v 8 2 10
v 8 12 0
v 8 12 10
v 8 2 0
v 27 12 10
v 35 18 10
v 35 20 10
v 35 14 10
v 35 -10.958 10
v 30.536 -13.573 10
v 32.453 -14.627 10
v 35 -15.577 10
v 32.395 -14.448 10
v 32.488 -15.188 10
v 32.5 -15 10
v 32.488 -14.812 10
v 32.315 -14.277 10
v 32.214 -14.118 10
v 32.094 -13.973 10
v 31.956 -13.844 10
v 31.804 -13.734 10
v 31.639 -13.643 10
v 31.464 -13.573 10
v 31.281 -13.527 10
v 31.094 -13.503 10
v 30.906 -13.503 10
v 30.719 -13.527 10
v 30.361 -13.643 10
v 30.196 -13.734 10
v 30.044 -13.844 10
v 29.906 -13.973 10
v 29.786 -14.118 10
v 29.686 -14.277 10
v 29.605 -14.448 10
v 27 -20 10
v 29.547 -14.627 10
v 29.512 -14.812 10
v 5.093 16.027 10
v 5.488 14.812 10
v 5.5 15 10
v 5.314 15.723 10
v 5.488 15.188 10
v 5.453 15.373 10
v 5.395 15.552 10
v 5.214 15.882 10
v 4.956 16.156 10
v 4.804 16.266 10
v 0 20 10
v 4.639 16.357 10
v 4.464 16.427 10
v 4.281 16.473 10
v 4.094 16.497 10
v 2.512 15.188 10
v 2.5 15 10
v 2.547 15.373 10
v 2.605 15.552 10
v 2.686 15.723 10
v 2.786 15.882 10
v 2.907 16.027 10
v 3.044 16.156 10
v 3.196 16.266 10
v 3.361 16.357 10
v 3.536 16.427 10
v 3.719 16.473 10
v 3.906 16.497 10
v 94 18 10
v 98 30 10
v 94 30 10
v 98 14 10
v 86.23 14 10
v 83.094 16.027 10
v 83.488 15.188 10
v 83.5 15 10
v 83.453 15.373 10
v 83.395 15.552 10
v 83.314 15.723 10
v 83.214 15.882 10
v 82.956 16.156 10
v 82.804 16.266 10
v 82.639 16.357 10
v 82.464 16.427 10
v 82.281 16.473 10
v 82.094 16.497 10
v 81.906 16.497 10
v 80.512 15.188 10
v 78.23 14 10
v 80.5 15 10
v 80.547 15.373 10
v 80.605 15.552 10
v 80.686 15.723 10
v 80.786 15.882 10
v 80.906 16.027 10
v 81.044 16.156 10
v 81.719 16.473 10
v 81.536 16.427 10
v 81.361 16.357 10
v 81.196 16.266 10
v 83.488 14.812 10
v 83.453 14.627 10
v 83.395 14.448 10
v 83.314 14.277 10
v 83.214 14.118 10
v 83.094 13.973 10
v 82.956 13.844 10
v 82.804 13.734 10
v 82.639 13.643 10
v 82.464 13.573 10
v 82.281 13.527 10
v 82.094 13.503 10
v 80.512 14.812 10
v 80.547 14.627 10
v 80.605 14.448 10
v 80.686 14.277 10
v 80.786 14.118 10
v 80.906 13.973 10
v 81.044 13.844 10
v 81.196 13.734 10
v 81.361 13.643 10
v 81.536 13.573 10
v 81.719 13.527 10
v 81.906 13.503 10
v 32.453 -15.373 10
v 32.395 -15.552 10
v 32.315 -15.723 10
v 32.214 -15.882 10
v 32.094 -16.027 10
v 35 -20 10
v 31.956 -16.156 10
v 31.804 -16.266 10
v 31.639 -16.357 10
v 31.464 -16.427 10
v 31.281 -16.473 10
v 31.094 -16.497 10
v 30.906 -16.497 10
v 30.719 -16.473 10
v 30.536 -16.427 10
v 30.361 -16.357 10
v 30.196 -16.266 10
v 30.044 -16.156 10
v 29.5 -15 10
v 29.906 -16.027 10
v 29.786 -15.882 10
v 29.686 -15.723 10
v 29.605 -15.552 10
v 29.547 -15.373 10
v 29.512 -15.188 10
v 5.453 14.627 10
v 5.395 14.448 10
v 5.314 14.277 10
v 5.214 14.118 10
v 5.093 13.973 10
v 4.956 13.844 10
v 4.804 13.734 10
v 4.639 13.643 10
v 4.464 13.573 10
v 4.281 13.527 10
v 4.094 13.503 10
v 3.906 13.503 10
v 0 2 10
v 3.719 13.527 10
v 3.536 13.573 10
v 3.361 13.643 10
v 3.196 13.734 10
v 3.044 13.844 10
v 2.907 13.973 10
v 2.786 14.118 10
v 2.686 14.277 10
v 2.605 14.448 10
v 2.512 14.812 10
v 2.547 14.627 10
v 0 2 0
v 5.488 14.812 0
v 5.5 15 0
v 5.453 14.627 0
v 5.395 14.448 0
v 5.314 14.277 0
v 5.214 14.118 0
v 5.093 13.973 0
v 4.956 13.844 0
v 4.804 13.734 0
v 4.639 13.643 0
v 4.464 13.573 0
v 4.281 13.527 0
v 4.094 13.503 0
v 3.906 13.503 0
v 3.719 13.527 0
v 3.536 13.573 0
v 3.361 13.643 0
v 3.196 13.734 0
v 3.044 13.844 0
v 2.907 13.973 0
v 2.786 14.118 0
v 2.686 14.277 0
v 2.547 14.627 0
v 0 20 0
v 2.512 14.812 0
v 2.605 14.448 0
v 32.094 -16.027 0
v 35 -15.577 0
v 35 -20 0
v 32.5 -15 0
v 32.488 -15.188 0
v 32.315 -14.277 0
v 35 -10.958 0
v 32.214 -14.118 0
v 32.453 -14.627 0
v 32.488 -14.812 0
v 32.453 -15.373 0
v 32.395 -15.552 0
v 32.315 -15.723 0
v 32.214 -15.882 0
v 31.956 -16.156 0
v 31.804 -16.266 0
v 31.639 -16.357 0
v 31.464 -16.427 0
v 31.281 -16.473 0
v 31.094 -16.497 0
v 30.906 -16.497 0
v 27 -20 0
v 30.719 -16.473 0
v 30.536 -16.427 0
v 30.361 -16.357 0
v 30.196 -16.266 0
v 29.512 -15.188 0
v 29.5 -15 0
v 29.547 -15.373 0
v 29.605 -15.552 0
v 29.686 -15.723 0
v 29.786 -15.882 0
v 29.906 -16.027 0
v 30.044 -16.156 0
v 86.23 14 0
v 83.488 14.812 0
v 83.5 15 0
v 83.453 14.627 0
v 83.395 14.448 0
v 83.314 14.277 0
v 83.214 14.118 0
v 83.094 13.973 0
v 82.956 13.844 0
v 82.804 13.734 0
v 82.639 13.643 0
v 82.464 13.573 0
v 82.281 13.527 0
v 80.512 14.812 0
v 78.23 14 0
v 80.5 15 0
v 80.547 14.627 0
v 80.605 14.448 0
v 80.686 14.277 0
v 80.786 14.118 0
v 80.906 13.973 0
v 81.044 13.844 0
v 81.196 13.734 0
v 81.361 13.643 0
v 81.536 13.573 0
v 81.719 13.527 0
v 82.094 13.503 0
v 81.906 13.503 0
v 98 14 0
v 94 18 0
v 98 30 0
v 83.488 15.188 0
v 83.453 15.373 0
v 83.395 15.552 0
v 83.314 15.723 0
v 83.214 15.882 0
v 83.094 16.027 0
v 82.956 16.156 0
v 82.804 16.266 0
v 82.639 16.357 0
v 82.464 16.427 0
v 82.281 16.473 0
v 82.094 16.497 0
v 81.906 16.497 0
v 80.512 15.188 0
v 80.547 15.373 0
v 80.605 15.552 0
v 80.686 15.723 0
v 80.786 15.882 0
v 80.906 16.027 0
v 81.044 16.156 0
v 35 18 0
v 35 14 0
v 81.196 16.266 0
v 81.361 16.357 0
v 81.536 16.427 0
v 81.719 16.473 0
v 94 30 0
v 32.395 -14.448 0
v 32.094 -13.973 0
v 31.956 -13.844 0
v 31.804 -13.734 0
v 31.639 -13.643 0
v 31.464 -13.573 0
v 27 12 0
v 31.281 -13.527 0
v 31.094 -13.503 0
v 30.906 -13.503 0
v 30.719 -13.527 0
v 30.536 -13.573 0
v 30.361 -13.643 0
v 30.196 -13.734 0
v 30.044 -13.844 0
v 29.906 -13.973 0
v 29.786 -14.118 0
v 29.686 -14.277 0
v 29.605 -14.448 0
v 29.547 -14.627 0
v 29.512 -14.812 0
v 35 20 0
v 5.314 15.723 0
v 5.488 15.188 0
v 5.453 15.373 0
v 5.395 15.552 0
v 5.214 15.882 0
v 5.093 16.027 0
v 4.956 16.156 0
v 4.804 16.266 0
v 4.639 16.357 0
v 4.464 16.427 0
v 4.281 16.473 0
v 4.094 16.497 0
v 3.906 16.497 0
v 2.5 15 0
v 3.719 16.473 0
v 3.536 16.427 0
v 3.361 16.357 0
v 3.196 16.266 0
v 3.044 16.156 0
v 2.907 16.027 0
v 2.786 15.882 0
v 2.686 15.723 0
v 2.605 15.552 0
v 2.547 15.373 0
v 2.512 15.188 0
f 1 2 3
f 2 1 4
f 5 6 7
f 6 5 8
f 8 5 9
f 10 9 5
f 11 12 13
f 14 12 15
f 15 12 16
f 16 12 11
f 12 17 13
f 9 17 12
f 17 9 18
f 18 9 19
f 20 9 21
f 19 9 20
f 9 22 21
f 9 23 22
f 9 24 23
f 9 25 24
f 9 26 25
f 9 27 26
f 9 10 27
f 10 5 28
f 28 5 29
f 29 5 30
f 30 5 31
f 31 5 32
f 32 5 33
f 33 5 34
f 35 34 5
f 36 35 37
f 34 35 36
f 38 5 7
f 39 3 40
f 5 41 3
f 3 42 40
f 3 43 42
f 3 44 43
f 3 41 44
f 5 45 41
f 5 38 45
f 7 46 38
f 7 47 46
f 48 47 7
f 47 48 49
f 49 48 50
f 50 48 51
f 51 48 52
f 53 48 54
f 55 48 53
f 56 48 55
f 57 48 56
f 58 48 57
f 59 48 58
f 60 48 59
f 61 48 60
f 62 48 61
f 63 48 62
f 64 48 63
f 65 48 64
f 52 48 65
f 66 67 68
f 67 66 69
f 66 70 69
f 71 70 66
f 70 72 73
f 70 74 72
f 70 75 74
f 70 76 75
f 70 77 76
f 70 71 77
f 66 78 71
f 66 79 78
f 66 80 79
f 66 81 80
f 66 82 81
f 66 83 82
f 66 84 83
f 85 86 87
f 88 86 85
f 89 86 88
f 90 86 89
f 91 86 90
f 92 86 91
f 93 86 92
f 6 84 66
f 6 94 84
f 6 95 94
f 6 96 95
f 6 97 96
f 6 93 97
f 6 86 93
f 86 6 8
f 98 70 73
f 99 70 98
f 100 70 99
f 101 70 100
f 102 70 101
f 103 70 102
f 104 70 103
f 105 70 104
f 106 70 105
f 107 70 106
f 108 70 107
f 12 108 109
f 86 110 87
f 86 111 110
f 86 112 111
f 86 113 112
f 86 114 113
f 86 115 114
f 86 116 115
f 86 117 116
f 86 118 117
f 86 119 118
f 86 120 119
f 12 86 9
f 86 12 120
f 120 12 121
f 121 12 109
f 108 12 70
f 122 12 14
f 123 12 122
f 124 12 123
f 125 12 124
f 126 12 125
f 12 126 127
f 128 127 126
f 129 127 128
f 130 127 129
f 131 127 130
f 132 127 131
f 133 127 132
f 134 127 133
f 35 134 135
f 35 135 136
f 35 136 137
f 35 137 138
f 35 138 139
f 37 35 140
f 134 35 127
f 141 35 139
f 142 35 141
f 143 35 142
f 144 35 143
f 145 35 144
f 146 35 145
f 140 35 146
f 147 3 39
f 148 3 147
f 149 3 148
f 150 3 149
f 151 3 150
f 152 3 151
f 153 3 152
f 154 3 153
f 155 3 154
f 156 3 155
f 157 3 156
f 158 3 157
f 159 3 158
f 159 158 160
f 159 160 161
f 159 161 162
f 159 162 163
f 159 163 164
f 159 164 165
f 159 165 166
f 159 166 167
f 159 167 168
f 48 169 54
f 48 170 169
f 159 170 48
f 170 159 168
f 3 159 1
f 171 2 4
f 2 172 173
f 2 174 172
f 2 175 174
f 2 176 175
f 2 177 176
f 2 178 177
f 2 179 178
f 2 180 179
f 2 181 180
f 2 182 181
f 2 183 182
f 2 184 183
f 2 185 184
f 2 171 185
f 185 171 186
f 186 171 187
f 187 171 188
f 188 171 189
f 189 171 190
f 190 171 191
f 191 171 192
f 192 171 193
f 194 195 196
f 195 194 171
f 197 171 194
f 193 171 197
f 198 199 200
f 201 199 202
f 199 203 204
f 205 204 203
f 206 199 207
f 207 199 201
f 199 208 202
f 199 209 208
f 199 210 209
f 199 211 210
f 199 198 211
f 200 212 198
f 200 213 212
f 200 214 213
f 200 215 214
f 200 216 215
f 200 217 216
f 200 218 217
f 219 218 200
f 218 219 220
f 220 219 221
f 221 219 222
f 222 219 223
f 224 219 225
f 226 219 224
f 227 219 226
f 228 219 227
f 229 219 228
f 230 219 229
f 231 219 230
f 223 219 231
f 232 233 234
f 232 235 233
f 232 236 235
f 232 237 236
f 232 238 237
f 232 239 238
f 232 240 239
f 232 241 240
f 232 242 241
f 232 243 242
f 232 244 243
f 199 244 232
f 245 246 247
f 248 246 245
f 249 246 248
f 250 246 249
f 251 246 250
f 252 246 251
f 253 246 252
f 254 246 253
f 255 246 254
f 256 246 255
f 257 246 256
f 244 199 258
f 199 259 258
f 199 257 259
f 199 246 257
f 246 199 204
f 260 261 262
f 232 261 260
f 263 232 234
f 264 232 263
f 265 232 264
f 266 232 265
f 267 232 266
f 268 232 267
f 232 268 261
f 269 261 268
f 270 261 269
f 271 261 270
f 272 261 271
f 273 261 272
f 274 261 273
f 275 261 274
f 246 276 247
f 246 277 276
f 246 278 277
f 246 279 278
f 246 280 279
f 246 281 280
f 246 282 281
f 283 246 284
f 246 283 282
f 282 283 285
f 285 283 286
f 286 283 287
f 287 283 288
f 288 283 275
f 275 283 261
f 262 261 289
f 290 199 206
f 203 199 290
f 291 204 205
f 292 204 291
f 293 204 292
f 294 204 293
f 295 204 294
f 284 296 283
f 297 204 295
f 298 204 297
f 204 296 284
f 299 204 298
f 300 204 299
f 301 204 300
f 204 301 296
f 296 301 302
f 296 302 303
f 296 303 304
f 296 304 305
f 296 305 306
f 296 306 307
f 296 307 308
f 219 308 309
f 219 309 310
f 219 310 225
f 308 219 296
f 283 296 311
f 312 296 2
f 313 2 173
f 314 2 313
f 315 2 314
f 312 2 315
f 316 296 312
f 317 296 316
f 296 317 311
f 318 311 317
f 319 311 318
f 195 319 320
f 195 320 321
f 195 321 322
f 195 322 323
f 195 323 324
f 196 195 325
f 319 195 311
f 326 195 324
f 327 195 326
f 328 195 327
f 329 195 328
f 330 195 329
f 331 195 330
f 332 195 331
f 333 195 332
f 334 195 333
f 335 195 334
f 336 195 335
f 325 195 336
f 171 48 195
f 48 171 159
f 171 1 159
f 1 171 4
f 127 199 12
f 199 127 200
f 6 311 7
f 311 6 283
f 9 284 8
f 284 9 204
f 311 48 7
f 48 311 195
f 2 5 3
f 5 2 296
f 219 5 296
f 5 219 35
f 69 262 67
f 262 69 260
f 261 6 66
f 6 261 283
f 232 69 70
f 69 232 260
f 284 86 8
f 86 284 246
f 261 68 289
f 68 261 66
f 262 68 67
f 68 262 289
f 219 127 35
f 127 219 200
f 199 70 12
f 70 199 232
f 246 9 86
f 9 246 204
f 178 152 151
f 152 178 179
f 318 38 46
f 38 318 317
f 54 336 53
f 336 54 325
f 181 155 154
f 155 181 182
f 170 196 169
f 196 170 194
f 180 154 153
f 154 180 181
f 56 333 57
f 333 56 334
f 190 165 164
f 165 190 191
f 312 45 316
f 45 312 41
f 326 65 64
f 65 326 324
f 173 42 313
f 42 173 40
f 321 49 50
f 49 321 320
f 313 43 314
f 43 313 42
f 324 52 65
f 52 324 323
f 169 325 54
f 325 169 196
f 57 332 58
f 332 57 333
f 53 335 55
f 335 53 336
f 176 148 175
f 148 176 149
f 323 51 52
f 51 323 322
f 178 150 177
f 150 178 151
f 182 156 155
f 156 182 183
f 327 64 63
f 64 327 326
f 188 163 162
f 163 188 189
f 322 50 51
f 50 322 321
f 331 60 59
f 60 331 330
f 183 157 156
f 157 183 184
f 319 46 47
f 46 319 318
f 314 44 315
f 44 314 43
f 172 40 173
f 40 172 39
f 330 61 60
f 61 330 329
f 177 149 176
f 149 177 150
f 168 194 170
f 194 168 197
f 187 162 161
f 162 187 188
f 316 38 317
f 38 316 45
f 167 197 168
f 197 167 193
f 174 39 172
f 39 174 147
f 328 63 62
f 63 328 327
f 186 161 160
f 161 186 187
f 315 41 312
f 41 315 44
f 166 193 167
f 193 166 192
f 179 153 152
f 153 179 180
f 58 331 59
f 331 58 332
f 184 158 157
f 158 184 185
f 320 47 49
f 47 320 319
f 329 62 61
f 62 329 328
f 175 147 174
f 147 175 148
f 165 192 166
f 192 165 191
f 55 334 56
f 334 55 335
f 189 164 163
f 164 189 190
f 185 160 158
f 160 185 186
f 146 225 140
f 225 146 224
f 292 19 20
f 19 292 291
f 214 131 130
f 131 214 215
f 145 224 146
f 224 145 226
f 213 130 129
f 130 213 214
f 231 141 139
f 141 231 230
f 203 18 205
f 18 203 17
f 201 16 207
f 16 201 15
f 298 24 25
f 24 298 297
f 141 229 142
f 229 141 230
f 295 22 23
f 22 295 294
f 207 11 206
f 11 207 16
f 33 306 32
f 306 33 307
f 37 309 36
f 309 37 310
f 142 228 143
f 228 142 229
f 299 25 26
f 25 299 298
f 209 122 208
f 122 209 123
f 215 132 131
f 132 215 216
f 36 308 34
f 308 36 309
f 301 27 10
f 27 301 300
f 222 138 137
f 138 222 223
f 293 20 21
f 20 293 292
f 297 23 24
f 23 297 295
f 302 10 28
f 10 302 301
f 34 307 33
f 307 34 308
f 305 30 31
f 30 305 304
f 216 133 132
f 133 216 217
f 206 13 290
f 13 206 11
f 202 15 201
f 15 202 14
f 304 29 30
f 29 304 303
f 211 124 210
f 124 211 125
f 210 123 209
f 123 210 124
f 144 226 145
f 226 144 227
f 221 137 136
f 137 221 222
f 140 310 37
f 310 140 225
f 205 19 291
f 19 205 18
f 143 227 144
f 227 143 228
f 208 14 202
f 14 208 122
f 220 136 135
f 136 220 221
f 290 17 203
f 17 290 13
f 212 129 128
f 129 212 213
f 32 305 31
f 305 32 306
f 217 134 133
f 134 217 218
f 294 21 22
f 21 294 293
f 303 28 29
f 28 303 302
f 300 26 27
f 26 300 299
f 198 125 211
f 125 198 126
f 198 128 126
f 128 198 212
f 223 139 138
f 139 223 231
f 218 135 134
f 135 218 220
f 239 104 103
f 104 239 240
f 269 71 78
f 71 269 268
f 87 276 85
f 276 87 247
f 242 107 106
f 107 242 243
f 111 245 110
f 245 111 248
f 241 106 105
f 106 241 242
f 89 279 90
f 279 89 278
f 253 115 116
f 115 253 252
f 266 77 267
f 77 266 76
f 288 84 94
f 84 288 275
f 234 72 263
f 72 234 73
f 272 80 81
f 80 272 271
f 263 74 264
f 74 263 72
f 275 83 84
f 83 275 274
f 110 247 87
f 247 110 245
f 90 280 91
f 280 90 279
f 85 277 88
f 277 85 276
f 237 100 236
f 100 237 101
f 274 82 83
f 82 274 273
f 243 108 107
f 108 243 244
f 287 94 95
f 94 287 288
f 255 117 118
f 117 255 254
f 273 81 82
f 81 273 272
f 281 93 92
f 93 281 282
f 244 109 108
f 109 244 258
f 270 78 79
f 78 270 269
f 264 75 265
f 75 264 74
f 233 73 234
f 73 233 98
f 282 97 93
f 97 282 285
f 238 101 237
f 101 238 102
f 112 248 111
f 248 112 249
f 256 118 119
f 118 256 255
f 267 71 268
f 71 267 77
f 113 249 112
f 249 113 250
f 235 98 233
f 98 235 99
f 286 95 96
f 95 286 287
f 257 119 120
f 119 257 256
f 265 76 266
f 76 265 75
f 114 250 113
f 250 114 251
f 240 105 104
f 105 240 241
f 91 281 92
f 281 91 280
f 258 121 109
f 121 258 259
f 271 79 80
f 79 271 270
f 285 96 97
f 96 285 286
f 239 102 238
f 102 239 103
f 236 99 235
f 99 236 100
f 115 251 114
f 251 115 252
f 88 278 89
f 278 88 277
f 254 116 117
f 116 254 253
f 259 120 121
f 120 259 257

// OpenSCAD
$fn=50;
thick=8;
a1=8;
a2=20;
a3=70;

module main(hh) {
    translate([0,2,0]) cube([thick,thick+a1,hh]);
    translate([0,a2-thick,0]) cube([2*thick+a2-1,thick,hh]);
    translate([thick+a2-1,0,0]) cube([thick,thick+a1,hh]);
    translate([thick+a2,14,0]) cube([a3,thick/2,hh]);
    translate([3*thick+a3,14,0]) cube([thick/2,thick+a1,hh]);
    translate([thick+a2-1,-20,0]) cube([thick,thick+a1+20,hh]);
    translate([thick+a2,-15,0]) rotate(-60) cube([thick/2,thick+a1+50,hh]);
}


module hole(hh) {
    #cylinder(hh,d=3);
}
module skinny(hh) {
    difference() {
    union() {
    translate([0,2,0]) cube([thick,thick+a1,hh]);
    translate([0,a2-thick,0]) cube([2*thick+a2-1,thick,hh]);
    translate([thick+a2-1,0,0]) cube([thick,thick+a1,hh]);
    translate([thick+a2,14,0]) cube([a3,thick/2,hh]);
    translate([3*thick+a3,14,0]) cube([thick/2,thick+a1,hh]);
    translate([thick+a2-1,-20,0]) cube([thick,thick+a1+20,hh]);
    translate([thick+a2,-15,0]) rotate(-60) cube([thick/2,thick+a1+50,hh]);
    }
    translate([thick/2,15,0]) hole(hh);
    translate([31,-15,0]) hole(hh);
    translate([82,15,0]) hole(hh);
    }
}

//main(hh=170);
skinny(hh=10);
